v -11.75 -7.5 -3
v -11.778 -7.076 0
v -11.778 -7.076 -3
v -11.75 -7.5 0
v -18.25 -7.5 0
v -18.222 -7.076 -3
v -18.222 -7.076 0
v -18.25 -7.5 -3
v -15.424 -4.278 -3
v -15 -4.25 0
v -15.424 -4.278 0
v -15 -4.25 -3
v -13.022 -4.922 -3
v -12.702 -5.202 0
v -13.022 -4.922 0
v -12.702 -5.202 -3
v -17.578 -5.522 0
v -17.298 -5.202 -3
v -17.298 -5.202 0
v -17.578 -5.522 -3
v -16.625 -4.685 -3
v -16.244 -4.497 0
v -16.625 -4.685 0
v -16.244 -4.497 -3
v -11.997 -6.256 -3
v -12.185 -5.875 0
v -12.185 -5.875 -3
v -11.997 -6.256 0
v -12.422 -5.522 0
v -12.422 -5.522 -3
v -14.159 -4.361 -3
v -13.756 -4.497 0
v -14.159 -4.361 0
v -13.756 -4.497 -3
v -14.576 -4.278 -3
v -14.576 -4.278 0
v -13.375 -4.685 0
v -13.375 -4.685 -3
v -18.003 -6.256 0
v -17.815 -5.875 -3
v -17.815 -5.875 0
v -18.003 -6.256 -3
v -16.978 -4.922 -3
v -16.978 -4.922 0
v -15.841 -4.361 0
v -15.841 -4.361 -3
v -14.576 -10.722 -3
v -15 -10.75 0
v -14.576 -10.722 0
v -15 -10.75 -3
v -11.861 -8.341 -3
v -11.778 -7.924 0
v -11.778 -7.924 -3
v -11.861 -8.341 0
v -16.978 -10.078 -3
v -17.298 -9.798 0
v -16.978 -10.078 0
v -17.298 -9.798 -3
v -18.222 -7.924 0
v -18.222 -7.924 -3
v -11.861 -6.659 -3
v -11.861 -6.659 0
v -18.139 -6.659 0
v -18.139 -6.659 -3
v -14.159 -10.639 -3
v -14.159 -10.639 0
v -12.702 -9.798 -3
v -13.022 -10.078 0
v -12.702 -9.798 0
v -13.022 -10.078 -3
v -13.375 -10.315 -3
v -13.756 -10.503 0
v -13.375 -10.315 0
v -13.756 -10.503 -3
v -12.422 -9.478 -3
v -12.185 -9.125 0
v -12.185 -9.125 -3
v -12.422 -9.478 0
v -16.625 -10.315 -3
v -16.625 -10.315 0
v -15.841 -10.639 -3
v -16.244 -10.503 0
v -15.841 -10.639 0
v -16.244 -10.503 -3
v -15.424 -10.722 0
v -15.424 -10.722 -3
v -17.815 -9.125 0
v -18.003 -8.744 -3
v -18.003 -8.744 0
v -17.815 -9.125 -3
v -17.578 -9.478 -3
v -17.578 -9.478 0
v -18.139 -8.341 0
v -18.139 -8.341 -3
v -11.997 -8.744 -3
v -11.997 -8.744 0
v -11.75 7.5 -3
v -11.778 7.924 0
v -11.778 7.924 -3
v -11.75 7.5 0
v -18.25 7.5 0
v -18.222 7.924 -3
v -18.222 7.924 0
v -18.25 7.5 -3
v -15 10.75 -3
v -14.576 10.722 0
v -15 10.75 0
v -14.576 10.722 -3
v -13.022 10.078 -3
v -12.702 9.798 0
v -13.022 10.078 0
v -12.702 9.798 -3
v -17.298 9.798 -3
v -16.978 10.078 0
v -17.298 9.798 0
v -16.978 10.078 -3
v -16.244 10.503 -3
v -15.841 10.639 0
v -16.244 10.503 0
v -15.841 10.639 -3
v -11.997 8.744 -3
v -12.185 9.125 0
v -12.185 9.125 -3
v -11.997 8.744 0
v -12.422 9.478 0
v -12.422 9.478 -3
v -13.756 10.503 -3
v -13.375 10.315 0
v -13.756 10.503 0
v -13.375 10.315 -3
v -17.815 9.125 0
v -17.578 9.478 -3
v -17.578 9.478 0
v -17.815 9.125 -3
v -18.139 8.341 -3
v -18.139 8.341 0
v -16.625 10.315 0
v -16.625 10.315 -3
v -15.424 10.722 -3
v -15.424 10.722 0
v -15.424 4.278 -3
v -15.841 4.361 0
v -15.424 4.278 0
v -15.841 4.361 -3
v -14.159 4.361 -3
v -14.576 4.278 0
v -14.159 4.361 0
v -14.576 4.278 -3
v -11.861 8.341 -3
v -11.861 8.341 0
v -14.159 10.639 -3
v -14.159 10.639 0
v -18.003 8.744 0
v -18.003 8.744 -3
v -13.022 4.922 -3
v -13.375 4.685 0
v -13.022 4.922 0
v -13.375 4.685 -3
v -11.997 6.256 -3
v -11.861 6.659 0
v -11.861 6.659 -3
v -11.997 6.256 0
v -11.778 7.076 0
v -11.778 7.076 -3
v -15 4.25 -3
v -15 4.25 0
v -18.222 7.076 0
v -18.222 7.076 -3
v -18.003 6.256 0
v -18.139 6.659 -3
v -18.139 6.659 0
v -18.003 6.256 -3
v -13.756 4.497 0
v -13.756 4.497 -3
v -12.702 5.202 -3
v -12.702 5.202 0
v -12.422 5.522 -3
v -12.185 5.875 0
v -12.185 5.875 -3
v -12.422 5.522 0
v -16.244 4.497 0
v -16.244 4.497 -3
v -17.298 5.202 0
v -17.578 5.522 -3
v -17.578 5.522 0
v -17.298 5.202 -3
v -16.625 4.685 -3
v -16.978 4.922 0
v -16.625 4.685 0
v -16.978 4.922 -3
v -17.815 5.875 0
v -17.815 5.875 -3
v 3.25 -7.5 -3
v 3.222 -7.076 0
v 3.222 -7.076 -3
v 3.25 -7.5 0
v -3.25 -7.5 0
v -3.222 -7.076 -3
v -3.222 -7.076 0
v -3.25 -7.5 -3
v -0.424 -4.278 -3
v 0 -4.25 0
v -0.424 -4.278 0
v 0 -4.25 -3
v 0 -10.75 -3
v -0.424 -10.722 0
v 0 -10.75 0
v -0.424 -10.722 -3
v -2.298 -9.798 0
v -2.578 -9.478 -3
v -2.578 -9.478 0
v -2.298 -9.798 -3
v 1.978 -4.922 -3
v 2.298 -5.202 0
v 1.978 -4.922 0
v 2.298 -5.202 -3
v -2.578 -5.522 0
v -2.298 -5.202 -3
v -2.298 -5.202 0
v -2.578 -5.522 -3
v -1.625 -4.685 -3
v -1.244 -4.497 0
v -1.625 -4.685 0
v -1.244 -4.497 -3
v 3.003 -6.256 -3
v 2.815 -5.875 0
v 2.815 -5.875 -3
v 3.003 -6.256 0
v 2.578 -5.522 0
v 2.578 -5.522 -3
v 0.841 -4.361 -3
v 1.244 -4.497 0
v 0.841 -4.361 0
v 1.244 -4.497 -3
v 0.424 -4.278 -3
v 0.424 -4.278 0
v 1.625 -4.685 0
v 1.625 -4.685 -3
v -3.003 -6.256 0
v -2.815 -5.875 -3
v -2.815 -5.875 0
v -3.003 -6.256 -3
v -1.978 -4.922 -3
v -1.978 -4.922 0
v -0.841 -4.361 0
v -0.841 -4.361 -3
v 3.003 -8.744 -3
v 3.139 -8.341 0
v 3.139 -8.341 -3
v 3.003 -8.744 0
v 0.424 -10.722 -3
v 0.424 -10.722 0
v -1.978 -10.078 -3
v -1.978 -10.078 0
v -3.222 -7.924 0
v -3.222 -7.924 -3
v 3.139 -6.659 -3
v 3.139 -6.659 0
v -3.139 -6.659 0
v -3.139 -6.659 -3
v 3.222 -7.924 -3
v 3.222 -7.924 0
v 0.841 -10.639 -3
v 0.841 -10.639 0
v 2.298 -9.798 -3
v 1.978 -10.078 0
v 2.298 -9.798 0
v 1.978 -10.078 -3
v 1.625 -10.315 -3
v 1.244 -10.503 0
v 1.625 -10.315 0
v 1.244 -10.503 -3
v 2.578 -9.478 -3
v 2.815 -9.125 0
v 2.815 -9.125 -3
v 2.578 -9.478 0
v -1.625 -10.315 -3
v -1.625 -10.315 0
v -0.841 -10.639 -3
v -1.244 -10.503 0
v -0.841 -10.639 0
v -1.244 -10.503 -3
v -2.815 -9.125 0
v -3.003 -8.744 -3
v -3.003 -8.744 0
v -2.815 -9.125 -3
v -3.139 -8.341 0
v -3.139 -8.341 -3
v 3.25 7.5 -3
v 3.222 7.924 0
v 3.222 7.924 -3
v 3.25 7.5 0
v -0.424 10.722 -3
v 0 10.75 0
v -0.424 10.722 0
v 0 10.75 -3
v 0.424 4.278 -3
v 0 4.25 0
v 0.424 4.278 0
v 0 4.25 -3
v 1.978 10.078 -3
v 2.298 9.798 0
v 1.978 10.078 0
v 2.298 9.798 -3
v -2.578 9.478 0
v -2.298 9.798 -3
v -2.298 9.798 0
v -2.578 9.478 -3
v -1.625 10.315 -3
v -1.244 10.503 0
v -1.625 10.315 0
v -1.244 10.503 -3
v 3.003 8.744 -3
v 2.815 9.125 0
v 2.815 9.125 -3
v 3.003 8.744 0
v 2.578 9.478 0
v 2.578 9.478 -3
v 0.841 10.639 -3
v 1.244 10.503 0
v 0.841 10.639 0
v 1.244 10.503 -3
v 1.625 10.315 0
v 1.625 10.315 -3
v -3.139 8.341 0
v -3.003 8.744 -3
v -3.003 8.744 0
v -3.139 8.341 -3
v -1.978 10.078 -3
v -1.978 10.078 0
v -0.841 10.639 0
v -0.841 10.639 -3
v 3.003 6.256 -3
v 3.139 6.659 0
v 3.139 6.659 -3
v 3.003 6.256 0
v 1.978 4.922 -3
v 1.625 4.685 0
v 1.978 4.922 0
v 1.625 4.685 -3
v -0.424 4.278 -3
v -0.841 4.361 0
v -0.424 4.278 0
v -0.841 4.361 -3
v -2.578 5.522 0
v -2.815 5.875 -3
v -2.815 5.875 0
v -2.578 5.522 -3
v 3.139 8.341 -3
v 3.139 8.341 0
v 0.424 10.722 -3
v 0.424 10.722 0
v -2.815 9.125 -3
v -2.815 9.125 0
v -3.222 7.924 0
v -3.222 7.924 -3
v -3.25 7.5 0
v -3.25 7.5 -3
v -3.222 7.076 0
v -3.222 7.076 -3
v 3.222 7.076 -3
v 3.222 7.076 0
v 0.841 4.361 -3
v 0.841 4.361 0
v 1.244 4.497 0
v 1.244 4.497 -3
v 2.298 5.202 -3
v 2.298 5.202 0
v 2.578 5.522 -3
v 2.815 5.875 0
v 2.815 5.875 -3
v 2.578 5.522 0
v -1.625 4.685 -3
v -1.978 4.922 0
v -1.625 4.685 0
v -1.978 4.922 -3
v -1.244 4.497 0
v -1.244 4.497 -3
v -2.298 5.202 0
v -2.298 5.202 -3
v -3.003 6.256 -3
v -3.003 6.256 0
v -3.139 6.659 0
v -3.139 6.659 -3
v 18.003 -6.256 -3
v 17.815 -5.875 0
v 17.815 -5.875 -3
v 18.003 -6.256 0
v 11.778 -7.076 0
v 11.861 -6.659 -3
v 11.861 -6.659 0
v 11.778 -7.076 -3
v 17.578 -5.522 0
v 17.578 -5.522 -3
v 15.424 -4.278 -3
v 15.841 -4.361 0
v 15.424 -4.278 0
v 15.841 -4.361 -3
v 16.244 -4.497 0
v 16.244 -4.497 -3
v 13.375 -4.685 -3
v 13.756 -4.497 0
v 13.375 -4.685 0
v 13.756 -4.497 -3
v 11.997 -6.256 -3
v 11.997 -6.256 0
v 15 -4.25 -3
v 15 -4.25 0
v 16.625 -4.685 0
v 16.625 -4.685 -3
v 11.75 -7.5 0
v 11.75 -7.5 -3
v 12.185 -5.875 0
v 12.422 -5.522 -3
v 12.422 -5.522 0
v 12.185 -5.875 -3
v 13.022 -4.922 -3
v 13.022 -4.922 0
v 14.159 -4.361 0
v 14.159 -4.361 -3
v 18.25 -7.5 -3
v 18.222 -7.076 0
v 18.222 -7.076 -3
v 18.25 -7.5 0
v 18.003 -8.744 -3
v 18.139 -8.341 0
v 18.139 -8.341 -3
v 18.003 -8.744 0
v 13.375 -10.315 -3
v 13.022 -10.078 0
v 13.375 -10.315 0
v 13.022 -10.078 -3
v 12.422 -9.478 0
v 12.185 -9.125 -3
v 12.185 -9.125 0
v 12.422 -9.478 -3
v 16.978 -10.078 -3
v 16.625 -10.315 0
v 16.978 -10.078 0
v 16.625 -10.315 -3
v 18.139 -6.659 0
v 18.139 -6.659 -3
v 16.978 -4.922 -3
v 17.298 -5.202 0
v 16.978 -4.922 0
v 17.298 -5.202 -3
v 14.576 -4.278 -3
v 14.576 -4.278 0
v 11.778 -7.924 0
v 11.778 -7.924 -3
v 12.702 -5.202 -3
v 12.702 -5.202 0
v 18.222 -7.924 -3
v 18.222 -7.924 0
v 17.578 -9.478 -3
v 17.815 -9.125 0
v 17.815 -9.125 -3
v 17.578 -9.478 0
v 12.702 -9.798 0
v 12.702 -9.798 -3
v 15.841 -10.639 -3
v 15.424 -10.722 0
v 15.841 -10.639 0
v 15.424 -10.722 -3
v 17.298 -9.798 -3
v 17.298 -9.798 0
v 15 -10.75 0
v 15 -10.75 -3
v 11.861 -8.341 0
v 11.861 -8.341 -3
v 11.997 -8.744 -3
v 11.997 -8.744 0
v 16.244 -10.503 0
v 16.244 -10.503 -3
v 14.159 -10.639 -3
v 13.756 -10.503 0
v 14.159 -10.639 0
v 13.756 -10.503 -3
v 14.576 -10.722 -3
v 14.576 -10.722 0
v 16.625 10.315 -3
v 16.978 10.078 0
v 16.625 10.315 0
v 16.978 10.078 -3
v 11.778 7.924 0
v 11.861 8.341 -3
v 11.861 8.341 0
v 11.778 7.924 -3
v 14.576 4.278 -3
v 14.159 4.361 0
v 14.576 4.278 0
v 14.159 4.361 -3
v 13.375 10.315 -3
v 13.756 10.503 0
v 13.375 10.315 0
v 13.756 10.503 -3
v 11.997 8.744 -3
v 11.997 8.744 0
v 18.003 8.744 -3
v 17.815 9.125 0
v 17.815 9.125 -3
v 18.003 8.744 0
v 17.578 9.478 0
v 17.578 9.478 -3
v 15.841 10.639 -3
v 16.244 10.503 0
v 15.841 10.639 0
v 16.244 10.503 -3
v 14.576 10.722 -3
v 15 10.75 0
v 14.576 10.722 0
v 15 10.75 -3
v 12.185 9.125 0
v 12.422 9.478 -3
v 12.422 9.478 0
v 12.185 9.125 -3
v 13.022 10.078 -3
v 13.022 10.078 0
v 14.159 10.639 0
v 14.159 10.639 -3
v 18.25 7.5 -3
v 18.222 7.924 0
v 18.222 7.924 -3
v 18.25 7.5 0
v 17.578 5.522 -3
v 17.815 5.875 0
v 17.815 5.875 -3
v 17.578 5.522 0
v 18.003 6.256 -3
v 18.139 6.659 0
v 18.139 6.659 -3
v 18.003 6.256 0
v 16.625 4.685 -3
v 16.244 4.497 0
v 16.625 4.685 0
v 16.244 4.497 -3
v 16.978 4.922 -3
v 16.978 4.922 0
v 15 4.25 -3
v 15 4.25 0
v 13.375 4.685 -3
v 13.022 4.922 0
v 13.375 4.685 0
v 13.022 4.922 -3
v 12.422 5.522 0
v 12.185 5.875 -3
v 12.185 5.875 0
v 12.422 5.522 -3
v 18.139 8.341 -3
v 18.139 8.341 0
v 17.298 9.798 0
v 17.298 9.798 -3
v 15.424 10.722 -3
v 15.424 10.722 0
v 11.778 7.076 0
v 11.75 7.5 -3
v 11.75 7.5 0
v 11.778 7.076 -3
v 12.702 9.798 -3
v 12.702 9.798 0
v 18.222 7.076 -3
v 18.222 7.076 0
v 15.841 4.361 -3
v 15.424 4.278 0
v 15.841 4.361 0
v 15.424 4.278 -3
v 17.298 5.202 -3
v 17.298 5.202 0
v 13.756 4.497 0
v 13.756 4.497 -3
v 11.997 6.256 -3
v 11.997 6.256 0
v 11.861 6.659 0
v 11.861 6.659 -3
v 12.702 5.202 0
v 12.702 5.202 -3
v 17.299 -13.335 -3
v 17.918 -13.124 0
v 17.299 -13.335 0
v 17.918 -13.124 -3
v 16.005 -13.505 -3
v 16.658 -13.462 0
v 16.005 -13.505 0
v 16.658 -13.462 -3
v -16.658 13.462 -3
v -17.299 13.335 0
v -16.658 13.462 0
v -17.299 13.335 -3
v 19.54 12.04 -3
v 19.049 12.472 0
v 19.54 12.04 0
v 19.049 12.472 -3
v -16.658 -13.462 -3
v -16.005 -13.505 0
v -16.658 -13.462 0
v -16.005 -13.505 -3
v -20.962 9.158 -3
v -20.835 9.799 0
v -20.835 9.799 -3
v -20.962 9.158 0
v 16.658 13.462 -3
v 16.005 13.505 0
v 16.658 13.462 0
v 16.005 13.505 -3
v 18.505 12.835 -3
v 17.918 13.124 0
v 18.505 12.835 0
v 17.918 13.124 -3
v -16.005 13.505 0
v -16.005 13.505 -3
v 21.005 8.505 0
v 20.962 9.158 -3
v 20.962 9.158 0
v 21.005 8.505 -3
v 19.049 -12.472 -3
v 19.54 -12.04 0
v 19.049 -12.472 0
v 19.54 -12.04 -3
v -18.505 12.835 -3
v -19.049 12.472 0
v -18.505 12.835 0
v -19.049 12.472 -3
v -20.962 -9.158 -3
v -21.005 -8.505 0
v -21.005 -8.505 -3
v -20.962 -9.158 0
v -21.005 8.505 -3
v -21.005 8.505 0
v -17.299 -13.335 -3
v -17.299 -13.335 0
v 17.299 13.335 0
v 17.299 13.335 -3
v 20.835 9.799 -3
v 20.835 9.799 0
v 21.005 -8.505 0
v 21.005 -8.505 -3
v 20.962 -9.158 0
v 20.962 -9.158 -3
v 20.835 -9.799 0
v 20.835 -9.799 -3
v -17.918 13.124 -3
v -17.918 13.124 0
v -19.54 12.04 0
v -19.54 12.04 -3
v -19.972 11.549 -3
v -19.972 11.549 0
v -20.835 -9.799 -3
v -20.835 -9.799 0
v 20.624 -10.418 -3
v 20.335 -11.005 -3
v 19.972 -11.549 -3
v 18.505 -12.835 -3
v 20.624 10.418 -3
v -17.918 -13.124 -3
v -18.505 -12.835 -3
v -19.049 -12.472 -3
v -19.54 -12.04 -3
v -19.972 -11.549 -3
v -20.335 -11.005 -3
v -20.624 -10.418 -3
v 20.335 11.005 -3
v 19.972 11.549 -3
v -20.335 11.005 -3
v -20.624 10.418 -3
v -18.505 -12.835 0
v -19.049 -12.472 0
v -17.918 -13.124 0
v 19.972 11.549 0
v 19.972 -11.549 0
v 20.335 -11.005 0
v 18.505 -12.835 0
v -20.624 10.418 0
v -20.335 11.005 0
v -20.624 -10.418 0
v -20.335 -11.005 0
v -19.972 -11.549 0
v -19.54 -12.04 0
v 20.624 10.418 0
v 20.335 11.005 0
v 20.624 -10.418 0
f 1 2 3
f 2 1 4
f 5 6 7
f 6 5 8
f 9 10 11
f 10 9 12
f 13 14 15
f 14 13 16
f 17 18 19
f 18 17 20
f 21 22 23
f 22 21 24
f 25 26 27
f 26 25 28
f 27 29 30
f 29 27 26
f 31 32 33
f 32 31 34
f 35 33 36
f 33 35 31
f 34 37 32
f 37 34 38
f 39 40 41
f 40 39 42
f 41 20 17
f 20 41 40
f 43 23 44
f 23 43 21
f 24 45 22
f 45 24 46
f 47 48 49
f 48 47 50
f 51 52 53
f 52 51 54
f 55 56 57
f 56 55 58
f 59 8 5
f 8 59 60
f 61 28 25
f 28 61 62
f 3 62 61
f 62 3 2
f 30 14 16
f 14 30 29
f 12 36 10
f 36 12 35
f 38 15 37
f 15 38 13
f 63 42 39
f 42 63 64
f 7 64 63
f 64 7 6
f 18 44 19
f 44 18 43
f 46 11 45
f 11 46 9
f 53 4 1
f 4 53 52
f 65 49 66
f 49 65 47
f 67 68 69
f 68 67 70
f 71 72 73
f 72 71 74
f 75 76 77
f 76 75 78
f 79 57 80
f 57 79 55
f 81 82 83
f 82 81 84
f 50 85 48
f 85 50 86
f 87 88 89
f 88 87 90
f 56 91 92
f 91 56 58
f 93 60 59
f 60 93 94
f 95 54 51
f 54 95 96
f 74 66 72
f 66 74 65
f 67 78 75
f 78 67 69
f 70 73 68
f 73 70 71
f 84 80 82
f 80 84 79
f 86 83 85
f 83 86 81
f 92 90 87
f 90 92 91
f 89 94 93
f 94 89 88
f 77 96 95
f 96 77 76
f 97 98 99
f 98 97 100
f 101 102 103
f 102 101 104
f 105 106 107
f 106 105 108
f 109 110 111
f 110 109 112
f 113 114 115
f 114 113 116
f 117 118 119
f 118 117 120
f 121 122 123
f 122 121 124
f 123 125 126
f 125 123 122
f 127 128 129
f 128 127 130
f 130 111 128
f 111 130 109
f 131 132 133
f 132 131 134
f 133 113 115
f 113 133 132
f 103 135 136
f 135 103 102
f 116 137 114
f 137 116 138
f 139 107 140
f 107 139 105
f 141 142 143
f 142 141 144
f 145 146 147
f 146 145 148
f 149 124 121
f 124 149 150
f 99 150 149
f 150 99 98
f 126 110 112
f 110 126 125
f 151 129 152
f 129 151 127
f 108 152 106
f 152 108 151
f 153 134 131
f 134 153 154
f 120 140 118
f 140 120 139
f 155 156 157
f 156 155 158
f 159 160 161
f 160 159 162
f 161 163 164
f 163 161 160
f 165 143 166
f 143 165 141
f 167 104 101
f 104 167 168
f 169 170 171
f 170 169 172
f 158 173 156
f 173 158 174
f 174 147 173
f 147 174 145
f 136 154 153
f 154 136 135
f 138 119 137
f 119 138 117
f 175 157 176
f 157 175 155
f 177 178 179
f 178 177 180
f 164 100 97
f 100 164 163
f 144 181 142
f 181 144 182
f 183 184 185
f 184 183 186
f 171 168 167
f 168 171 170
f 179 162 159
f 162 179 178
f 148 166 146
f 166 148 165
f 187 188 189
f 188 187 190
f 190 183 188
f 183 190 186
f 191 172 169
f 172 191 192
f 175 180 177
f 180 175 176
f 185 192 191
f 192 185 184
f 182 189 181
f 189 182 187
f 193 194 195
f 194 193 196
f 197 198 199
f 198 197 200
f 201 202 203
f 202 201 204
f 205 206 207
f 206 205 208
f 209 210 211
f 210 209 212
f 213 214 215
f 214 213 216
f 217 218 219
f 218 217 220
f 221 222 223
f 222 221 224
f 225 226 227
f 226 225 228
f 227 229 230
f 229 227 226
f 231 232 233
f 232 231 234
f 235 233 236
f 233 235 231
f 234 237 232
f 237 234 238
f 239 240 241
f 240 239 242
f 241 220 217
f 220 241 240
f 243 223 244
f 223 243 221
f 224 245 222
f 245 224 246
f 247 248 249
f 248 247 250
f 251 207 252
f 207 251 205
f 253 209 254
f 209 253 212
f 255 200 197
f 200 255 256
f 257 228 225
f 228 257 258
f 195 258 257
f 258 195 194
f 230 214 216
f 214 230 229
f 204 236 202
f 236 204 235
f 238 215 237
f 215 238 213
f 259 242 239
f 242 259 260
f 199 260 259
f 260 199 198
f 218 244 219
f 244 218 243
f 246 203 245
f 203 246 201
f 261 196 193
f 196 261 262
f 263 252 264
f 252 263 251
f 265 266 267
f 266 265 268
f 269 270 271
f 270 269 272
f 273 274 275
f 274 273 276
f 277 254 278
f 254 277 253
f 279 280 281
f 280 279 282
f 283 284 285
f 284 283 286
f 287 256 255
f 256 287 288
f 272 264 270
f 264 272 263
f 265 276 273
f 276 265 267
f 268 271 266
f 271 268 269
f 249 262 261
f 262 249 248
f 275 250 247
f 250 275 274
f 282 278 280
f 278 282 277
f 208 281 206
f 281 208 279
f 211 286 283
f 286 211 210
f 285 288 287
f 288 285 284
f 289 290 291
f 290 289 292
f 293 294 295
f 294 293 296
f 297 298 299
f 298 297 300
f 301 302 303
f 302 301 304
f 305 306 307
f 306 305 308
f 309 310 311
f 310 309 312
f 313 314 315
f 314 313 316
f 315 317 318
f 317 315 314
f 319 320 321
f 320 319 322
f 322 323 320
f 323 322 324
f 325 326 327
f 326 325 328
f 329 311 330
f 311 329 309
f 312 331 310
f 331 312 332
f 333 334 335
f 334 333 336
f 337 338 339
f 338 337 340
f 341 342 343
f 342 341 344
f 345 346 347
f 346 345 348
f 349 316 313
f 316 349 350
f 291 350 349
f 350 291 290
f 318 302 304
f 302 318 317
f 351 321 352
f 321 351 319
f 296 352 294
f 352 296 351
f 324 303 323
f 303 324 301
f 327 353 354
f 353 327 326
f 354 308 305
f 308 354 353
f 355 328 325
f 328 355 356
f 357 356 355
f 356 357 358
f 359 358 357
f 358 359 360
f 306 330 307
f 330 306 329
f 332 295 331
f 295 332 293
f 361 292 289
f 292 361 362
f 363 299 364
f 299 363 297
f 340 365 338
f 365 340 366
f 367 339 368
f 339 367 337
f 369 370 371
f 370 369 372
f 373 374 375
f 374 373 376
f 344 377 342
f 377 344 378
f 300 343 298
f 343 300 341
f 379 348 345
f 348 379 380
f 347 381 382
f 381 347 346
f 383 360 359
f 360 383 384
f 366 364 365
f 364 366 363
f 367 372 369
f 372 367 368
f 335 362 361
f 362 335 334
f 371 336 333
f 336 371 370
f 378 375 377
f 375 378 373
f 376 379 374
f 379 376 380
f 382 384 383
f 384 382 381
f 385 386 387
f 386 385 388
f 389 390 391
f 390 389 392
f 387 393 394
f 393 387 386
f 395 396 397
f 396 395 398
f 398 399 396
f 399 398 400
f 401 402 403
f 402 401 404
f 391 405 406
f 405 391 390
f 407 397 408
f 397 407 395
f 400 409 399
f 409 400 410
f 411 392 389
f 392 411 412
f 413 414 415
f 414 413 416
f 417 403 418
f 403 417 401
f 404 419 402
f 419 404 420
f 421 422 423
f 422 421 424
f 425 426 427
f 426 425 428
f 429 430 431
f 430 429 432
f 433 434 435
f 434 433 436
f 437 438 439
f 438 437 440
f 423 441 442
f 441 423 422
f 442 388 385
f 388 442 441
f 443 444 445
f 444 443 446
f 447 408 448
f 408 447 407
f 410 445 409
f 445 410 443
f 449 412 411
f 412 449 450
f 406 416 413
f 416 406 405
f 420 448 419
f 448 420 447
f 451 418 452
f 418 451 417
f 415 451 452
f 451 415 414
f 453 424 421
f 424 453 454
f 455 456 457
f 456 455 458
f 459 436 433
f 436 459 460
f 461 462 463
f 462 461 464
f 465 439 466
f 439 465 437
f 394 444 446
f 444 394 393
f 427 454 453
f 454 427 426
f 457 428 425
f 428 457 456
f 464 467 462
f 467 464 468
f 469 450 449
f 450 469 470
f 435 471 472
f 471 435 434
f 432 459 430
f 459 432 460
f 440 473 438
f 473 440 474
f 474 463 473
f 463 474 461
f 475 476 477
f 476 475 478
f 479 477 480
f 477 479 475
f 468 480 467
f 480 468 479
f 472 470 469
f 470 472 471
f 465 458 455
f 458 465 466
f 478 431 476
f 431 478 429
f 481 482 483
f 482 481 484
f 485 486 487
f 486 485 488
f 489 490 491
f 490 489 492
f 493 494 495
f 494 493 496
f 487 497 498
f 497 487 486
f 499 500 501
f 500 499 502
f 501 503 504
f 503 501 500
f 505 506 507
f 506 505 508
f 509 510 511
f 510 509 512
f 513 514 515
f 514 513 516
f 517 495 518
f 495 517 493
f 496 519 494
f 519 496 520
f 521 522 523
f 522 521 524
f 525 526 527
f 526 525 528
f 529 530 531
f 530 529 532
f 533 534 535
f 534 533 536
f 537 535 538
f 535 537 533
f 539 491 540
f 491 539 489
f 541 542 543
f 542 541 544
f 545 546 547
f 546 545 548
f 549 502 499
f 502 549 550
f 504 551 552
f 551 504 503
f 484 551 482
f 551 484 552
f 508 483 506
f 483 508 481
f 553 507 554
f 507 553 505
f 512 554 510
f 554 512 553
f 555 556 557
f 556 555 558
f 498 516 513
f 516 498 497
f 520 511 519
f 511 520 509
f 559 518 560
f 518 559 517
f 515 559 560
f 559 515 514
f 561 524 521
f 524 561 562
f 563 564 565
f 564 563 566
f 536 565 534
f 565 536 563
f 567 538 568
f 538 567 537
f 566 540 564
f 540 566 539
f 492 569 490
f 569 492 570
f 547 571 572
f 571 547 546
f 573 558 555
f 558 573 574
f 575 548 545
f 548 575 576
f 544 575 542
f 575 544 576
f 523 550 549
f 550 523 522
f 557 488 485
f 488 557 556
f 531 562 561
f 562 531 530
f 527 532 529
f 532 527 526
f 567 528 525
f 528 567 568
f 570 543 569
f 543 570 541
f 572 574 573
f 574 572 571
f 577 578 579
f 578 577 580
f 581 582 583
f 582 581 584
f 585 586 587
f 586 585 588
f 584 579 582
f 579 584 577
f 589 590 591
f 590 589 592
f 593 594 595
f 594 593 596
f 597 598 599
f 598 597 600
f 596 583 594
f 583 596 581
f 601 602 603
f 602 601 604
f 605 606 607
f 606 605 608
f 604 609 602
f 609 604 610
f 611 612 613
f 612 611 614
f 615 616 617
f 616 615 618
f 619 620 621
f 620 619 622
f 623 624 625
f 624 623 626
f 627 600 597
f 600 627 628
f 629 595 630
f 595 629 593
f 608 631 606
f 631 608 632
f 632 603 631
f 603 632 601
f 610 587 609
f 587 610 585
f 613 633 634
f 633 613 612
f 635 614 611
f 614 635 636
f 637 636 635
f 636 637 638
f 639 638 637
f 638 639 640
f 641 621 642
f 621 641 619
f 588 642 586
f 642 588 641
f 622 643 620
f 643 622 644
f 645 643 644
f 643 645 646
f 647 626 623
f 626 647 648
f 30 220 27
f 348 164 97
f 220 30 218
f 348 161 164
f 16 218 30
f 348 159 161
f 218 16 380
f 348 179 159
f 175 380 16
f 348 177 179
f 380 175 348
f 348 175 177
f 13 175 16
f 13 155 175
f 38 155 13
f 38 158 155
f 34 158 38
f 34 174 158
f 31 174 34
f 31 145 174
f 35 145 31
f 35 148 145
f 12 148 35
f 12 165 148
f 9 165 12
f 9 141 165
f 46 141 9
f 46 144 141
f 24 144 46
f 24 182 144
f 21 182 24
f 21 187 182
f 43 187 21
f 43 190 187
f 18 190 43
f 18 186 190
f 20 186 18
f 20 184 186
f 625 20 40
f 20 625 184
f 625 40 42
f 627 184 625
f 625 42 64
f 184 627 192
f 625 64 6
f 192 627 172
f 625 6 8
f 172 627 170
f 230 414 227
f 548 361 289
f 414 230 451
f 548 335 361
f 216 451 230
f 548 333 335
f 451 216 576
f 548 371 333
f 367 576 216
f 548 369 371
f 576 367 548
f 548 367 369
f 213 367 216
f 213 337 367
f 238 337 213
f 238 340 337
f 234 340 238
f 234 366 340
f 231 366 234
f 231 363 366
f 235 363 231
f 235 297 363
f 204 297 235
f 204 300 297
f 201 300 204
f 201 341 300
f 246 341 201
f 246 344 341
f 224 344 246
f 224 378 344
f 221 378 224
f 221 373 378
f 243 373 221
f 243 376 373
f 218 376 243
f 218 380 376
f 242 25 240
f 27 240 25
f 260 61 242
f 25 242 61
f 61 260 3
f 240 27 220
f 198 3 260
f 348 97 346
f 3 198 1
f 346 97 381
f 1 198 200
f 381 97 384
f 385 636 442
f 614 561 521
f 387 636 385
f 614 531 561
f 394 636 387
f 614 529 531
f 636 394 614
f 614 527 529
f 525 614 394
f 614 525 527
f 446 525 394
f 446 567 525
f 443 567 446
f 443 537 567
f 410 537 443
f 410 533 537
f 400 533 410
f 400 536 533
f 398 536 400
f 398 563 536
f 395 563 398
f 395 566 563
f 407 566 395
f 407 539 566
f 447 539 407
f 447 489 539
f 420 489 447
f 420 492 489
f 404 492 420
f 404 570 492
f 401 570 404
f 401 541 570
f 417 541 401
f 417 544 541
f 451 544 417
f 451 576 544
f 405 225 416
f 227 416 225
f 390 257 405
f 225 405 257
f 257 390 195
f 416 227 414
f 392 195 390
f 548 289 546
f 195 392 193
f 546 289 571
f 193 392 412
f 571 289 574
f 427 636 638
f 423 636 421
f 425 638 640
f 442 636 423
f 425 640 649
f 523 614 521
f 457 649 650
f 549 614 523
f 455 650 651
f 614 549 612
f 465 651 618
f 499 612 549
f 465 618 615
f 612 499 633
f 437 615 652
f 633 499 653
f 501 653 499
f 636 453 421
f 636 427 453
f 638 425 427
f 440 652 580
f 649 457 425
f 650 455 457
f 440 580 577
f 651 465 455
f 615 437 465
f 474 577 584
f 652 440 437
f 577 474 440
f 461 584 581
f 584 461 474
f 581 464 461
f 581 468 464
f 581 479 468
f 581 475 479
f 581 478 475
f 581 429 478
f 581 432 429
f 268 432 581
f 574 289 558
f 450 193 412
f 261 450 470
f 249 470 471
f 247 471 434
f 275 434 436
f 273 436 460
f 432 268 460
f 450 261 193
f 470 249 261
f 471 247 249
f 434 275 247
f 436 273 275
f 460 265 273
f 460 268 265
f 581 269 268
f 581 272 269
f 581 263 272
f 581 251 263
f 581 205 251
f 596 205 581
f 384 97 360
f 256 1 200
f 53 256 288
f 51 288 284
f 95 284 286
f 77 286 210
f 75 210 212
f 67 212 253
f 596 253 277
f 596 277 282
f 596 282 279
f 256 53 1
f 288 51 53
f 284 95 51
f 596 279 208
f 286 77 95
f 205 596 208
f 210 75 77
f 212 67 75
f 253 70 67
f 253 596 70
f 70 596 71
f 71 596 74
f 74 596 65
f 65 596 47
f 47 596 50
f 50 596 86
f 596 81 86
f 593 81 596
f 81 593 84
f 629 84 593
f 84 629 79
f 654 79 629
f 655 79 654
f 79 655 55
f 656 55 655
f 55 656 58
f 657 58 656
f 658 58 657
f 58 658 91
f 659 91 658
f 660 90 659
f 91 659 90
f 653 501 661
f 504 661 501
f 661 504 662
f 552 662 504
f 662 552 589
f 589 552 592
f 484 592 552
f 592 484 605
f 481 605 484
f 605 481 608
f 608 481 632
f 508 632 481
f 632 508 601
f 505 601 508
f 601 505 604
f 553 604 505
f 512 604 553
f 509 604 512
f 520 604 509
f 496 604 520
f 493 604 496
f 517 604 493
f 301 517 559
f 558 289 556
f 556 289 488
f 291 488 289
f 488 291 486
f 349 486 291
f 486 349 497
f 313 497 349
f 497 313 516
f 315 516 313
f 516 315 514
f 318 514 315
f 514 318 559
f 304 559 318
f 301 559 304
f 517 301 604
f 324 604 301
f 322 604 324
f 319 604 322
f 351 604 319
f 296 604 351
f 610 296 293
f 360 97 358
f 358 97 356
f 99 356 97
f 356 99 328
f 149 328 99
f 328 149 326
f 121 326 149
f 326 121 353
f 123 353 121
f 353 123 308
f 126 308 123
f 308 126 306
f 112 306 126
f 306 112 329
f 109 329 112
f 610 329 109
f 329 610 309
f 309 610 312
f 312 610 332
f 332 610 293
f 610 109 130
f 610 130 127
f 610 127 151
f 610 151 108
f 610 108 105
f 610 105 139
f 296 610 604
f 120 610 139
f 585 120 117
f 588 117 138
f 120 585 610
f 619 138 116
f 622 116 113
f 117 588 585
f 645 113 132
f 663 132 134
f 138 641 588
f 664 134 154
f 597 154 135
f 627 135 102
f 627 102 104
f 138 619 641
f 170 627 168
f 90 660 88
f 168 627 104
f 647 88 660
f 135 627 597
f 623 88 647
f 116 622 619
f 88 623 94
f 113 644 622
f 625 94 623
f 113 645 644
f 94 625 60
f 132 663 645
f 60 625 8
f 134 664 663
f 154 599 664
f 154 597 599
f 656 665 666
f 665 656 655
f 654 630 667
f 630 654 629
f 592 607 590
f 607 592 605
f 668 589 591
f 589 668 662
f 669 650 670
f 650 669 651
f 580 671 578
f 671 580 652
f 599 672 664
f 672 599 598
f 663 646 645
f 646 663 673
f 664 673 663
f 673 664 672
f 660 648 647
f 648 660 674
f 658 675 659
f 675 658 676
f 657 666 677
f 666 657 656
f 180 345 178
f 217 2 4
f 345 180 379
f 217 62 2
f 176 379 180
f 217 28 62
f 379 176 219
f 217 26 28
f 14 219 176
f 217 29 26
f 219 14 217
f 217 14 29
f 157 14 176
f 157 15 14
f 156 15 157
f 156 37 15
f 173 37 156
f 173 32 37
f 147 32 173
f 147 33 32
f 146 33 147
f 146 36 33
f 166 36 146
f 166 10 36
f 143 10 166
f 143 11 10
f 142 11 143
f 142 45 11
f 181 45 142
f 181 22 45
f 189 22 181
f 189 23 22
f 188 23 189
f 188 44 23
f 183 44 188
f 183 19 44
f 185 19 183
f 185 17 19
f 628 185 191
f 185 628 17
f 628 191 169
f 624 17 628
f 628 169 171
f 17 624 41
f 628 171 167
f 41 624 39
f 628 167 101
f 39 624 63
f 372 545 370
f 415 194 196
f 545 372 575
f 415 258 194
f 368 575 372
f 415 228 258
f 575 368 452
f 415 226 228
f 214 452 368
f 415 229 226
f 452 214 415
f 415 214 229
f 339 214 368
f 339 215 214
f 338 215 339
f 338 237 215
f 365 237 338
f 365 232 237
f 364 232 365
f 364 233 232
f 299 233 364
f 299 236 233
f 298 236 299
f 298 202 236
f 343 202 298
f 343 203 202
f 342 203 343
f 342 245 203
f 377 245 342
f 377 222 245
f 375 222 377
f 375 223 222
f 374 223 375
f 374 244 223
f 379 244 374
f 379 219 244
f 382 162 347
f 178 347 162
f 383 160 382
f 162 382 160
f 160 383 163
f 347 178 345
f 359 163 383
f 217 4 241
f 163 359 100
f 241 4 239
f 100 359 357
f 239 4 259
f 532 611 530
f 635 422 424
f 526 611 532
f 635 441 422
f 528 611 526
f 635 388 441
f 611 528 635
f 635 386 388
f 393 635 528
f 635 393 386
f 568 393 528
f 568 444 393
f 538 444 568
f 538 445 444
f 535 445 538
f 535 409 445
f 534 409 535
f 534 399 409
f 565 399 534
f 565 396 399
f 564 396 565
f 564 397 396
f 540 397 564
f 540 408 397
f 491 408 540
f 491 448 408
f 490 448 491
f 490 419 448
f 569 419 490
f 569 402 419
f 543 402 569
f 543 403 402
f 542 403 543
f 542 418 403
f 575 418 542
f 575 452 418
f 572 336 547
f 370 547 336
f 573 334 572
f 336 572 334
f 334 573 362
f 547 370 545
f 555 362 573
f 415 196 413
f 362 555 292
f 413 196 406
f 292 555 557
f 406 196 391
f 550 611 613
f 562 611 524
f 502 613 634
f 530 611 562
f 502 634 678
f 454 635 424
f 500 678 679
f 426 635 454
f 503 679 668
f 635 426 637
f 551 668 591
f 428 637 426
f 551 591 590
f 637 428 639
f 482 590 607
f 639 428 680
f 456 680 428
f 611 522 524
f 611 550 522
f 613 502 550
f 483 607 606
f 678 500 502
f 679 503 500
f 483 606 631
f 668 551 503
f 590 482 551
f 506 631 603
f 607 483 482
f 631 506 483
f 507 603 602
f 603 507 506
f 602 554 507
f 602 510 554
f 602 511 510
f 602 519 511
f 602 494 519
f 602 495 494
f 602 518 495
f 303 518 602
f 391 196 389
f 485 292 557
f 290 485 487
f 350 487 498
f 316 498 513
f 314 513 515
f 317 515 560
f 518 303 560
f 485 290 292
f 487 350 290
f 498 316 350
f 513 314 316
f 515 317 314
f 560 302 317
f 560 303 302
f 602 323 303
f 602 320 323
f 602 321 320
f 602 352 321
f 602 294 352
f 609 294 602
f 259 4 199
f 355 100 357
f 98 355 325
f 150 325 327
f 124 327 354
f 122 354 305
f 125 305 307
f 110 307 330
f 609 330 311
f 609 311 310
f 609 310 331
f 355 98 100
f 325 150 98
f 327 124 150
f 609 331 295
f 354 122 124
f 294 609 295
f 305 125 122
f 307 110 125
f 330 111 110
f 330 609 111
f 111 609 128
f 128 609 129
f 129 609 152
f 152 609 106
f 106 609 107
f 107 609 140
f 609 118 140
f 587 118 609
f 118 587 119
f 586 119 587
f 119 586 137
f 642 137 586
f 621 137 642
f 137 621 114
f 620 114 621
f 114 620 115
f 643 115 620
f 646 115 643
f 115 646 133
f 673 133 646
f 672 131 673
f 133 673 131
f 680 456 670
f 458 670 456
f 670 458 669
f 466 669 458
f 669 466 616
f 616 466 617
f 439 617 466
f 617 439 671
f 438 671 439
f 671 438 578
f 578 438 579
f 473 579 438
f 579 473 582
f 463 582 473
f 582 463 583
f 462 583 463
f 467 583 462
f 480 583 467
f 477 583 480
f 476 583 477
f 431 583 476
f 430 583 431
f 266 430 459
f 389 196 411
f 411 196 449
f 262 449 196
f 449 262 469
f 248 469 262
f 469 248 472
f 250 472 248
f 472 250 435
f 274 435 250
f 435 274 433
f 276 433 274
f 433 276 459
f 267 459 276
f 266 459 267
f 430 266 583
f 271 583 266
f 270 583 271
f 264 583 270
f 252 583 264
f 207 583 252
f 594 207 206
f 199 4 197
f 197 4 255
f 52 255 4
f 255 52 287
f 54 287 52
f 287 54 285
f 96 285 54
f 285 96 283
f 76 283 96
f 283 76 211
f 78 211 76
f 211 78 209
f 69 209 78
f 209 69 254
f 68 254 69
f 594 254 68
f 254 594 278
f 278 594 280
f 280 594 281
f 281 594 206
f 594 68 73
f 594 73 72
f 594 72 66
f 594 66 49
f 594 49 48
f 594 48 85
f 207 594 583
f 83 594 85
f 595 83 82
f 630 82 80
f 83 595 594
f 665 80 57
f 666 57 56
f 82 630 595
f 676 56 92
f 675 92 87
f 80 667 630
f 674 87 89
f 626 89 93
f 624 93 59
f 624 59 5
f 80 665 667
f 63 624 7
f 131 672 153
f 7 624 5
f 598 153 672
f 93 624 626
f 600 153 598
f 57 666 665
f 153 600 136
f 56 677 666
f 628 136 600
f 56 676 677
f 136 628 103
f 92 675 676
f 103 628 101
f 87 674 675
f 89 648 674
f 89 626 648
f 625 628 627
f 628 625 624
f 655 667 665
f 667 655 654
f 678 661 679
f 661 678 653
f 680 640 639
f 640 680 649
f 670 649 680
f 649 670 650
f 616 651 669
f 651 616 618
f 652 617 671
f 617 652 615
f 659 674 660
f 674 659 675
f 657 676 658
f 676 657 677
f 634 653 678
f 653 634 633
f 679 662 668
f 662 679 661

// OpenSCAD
$fn = 48;


difference() {
	union() {
		translate(v = [0, 0, 0]) {
			difference() {
				union() {
					color(alpha = 1.0000000000, c = "Gold") {
						translate(v = [0, 0, 0]) {
							rotate(a = [0, 0, 0]) {
								translate(v = [0, 0, -3]) {
									linear_extrude(height = 3) {
										offset(r = 5) {
											square(center = true, size = [32.0100000000, 17.0100000000]);
										}
									}
								}
							}
						}
					}
				}
				union() {
					color(alpha = 1.0000000000, c = "Gold") {
						translate(v = [-15.0000000000, -7.5000000000, 0]) {
							rotate(a = [0, 0, 0]) {
								translate(v = [0, 0, -250]) {
									cylinder(h = 500, r = 3.2500000000);
								}
							}
						}
					}
					color(alpha = 1.0000000000, c = "Gold") {
						translate(v = [-15.0000000000, 7.5000000000, 0]) {
							rotate(a = [0, 0, 0]) {
								translate(v = [0, 0, -250]) {
									cylinder(h = 500, r = 3.2500000000);
								}
							}
						}
					}
					color(alpha = 1.0000000000, c = "Gold") {
						translate(v = [0.0000000000, -7.5000000000, 0]) {
							rotate(a = [0, 0, 0]) {
								translate(v = [0, 0, -250]) {
									cylinder(h = 500, r = 3.2500000000);
								}
							}
						}
					}
					color(alpha = 1.0000000000, c = "Gold") {
						translate(v = [0.0000000000, 7.5000000000, 0]) {
							rotate(a = [0, 0, 0]) {
								translate(v = [0, 0, -250]) {
									cylinder(h = 500, r = 3.2500000000);
								}
							}
						}
					}
					color(alpha = 1.0000000000, c = "Gold") {
						translate(v = [15.0000000000, -7.5000000000, 0]) {
							rotate(a = [0, 0, 0]) {
								translate(v = [0, 0, -250]) {
									cylinder(h = 500, r = 3.2500000000);
								}
							}
						}
					}
					color(alpha = 1.0000000000, c = "Gold") {
						translate(v = [15.0000000000, 7.5000000000, 0]) {
							rotate(a = [0, 0, 0]) {
								translate(v = [0, 0, -250]) {
									cylinder(h = 500, r = 3.2500000000);
								}
							}
						}
					}
				}
			}
		}
	}
	union();
}
